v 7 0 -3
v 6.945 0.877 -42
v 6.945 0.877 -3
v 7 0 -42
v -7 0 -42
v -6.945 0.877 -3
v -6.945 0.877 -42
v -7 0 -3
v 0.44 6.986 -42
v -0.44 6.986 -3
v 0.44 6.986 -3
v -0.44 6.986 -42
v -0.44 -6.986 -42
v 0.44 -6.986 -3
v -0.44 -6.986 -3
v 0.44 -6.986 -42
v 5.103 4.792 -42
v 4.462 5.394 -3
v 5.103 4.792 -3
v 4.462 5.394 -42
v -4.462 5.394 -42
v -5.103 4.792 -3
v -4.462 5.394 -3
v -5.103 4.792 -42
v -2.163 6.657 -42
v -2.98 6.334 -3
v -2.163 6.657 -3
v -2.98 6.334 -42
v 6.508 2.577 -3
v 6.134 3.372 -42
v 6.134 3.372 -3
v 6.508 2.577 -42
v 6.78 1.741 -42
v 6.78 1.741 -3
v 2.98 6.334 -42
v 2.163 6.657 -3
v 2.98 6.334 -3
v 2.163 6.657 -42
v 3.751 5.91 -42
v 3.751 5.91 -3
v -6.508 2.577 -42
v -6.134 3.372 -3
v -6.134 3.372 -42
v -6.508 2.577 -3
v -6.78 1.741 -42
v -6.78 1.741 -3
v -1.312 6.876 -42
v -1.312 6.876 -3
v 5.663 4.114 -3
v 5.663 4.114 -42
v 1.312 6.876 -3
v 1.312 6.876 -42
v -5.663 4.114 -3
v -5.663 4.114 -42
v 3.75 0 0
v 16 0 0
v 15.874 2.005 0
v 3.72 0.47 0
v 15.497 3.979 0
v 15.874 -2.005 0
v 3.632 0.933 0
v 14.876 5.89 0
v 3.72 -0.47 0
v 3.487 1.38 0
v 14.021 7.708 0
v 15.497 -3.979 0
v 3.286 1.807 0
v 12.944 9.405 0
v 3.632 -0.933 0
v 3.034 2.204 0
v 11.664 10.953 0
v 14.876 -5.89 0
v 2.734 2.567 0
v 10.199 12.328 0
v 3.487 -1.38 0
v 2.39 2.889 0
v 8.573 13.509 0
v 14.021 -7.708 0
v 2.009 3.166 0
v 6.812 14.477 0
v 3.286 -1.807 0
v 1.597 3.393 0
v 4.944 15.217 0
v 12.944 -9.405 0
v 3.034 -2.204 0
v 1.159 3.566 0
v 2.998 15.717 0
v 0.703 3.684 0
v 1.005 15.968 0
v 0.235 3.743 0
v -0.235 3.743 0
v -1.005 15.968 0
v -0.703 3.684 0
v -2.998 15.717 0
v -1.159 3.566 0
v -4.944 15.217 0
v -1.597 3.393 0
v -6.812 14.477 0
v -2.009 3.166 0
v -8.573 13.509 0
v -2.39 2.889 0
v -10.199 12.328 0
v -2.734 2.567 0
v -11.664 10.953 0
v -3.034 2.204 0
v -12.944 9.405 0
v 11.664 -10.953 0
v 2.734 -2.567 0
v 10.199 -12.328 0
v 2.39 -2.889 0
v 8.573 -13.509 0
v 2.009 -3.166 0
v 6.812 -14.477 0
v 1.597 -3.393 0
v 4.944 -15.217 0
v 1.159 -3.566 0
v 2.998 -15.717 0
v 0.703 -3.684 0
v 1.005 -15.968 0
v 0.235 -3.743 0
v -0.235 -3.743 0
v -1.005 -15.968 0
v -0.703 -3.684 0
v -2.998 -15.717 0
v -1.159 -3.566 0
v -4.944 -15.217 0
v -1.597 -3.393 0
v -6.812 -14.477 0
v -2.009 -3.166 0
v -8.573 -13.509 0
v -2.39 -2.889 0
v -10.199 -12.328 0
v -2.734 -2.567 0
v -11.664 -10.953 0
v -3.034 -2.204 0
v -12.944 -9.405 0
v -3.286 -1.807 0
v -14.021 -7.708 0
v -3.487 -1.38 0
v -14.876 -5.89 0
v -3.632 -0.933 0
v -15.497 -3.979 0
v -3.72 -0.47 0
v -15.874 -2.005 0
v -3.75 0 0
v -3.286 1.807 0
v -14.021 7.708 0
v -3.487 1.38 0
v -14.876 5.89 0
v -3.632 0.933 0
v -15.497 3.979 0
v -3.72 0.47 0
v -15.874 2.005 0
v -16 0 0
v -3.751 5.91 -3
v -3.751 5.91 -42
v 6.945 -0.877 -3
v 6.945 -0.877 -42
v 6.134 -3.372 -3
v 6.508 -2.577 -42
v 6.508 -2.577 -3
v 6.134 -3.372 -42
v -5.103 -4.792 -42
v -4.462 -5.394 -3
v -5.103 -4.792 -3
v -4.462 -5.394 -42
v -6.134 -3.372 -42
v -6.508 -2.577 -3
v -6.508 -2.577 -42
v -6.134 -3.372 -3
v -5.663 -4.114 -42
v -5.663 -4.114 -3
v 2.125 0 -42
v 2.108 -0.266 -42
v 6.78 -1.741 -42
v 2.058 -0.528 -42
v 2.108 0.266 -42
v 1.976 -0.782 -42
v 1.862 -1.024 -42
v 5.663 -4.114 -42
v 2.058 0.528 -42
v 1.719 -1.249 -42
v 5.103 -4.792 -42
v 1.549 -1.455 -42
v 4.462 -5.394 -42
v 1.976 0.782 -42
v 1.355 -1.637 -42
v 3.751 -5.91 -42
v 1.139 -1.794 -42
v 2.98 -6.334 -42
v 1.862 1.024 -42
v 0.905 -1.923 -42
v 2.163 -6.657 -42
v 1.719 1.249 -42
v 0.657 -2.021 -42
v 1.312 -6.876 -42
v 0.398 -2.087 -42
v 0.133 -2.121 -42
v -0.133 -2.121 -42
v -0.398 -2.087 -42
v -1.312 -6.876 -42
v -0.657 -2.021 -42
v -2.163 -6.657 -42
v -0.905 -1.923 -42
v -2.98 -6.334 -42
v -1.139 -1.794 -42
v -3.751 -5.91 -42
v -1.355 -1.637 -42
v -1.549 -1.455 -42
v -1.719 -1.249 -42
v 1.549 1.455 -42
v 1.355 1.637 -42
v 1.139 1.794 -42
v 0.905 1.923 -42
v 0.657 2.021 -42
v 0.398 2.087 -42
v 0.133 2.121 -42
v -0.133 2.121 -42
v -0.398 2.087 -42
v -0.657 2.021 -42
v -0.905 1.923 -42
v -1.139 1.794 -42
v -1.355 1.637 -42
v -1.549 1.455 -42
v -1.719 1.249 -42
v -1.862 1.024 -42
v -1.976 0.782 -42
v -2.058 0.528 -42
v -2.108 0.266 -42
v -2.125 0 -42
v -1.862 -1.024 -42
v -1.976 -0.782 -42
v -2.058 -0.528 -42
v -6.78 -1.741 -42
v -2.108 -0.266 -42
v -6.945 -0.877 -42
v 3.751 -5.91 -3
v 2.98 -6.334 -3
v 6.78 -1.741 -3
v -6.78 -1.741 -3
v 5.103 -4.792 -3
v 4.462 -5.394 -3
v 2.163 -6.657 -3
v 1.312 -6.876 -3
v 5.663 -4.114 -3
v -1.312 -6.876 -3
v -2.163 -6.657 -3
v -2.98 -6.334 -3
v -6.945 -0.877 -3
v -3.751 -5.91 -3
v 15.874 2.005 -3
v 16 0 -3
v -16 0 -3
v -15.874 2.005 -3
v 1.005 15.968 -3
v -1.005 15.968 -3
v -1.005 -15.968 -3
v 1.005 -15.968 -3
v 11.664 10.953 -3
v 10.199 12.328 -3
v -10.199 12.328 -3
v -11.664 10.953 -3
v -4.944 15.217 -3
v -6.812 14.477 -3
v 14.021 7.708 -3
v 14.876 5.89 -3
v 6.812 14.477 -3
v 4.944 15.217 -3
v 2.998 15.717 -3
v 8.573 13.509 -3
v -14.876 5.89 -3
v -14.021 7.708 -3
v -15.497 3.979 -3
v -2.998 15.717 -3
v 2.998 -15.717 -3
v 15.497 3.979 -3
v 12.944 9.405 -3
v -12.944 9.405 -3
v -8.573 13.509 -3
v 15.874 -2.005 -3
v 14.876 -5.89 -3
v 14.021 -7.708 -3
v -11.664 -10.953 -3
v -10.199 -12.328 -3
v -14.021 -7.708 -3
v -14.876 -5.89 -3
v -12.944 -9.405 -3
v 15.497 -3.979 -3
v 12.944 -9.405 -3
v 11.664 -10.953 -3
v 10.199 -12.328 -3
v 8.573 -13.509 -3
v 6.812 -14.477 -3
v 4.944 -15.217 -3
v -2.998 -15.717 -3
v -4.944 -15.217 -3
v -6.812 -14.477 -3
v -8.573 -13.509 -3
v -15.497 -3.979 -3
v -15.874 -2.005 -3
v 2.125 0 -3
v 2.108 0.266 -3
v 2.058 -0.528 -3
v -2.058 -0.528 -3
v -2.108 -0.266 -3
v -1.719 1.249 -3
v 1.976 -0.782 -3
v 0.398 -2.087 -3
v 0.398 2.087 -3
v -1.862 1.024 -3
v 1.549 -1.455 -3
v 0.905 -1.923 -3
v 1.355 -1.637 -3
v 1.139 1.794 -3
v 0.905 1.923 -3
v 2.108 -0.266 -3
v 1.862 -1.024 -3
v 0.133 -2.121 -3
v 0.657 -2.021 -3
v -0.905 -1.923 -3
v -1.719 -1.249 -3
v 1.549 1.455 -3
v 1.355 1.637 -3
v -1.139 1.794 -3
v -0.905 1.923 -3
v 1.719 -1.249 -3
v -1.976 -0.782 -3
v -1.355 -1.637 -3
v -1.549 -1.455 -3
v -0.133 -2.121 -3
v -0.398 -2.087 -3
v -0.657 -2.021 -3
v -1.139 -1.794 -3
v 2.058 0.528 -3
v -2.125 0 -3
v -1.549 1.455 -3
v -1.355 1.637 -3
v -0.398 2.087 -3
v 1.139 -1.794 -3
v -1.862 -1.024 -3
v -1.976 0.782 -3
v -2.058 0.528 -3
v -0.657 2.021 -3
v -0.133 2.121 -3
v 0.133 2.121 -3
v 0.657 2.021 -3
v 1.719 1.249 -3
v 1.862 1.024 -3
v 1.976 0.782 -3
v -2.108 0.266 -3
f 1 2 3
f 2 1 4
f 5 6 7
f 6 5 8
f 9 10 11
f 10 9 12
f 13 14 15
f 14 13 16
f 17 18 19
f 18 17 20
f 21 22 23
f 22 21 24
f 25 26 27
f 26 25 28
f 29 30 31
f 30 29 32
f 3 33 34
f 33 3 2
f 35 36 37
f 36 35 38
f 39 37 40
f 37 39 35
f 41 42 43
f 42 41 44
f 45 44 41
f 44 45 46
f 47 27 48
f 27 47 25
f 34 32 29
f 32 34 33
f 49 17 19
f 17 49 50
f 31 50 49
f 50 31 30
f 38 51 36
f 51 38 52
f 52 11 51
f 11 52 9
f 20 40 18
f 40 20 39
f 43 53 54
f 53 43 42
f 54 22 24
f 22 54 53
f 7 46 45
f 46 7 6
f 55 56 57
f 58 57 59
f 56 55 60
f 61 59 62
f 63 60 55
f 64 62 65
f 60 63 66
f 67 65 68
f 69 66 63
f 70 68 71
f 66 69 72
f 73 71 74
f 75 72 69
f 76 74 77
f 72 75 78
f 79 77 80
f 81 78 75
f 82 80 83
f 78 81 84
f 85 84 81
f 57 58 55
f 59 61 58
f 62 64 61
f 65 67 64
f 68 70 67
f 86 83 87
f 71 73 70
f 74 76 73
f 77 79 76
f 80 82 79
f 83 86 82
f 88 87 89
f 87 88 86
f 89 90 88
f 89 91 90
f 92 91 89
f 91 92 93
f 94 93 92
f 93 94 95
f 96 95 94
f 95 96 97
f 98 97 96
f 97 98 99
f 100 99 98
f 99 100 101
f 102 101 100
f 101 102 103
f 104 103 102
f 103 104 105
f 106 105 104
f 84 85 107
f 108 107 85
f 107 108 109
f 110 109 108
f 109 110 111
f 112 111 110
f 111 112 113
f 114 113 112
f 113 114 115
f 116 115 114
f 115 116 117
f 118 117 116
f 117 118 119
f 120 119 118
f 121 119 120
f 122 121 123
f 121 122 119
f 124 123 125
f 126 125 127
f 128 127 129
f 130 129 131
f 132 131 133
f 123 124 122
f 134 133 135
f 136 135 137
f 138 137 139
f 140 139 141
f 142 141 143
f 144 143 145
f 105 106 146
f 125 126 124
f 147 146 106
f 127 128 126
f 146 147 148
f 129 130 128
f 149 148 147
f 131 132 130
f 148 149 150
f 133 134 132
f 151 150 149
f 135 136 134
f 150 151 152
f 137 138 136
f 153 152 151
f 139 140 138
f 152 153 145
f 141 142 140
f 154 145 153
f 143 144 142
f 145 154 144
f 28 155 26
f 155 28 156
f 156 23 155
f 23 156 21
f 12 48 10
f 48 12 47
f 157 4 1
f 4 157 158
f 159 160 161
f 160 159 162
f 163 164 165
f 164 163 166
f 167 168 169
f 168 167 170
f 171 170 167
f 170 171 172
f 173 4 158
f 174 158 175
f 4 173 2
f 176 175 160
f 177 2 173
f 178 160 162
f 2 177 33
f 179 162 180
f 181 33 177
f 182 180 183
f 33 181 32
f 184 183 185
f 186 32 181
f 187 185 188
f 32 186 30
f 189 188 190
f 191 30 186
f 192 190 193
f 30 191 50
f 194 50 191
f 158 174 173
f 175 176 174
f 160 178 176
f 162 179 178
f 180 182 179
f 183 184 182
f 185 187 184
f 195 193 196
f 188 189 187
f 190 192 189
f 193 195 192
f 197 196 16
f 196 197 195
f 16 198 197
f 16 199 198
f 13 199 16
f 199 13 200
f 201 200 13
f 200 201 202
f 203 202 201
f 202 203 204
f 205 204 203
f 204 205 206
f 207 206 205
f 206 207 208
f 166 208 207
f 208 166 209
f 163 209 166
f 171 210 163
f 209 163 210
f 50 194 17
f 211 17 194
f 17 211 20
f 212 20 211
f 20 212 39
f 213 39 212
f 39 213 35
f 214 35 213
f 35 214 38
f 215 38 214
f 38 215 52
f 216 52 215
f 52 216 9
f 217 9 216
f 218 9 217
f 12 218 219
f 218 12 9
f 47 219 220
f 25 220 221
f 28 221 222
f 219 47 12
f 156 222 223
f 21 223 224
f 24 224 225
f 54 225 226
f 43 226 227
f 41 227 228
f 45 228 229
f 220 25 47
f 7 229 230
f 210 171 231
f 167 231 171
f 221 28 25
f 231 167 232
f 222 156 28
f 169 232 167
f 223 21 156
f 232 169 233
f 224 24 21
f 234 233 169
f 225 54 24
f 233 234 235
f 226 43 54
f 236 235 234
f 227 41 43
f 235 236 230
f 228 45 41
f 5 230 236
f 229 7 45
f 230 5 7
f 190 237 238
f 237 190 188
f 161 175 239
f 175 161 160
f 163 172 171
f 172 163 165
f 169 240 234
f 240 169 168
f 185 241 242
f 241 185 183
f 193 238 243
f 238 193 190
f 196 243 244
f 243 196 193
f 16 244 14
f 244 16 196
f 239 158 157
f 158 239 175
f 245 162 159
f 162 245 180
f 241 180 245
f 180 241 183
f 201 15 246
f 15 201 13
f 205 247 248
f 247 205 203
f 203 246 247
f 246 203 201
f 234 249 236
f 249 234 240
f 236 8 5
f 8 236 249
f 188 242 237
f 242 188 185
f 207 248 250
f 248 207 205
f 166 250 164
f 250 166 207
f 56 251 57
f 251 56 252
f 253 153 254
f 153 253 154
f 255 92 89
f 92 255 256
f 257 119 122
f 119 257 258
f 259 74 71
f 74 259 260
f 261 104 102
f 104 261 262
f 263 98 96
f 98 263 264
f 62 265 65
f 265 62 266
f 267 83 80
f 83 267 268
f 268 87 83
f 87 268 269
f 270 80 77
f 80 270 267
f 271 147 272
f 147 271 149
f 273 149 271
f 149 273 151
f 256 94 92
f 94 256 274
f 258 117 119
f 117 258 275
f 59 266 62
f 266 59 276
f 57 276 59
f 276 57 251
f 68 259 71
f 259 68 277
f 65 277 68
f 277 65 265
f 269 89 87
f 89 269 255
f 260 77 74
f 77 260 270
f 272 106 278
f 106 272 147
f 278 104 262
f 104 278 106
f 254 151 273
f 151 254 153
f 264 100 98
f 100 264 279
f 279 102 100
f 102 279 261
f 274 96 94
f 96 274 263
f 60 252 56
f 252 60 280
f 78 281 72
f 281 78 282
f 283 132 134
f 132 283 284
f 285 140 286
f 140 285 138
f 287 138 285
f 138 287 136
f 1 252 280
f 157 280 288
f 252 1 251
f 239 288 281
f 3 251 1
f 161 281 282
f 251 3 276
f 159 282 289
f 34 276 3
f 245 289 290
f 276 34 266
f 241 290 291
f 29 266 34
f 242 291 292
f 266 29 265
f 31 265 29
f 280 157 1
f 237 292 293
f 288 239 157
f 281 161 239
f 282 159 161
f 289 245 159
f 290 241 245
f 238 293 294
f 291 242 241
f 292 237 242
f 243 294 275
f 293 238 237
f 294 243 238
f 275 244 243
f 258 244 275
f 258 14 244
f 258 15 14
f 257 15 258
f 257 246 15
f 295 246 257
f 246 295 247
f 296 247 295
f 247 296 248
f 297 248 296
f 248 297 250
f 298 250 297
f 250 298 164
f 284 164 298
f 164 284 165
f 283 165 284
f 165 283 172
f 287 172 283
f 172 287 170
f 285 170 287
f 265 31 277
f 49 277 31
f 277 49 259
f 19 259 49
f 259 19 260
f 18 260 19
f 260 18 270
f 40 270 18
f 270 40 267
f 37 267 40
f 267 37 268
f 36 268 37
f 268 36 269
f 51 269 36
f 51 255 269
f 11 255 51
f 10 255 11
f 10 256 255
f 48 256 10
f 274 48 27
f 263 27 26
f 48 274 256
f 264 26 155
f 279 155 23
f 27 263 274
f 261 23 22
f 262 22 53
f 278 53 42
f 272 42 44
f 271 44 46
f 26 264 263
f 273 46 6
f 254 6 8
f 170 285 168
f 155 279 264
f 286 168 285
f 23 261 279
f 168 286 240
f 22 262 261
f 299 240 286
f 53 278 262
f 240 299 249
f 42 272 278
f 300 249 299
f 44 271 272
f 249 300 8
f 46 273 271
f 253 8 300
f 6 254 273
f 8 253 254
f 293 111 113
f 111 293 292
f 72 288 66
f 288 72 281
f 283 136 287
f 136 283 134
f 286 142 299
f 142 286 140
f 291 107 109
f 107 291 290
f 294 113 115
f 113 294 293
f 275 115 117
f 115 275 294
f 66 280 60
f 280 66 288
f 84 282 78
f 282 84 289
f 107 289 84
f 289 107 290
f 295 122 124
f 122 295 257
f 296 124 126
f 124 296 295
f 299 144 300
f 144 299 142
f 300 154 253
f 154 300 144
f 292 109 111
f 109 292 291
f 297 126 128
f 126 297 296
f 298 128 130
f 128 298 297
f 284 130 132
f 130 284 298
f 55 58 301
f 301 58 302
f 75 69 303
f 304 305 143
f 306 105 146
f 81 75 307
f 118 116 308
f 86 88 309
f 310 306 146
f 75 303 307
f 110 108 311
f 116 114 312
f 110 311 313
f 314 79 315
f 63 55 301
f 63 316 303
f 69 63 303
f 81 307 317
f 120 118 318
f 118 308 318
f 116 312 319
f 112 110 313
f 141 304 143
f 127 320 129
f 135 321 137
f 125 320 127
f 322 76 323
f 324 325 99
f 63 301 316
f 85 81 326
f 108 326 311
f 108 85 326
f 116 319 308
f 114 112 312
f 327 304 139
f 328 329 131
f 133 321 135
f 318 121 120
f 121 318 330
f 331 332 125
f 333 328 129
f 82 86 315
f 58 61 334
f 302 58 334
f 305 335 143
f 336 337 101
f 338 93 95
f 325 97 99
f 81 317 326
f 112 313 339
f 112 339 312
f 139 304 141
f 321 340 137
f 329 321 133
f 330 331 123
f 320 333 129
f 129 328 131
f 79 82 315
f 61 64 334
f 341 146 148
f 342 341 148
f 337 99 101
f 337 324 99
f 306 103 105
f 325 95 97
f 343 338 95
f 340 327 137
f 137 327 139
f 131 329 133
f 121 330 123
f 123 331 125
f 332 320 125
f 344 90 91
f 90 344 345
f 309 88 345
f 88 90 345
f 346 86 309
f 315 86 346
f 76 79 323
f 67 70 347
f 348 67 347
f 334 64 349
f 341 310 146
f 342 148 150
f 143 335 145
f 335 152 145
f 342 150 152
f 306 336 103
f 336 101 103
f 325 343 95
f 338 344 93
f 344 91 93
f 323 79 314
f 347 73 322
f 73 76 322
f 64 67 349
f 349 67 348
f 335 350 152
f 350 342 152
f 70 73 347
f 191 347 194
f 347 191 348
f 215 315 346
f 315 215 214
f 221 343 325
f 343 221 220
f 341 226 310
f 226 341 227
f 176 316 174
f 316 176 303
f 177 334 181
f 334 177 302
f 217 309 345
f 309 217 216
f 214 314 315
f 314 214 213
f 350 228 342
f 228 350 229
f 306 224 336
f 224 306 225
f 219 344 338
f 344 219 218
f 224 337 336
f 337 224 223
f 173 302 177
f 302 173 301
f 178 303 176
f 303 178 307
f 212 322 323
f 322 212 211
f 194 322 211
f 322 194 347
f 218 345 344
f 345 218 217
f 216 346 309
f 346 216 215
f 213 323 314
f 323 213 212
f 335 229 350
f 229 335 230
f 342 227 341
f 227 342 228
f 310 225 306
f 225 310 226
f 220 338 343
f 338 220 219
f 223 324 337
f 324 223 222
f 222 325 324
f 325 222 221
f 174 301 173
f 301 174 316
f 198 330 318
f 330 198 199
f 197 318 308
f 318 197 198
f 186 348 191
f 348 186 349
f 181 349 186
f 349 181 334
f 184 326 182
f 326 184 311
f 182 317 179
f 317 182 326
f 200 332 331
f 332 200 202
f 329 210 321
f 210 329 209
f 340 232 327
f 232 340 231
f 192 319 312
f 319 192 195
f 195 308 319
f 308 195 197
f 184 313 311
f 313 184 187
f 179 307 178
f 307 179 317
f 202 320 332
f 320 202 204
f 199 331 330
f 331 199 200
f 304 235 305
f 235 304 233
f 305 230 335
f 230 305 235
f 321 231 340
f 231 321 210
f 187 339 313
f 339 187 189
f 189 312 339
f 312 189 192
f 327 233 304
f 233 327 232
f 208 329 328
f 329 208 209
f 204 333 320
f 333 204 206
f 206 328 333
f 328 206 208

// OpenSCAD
$fn = 50;


difference() {
	union() {
		translate(v = [0, 0, -42.0000000000]) {
			cylinder(h = 42, r = 7.0000000000);
		}
		translate(v = [0, 0, -3.0000000000]) {
			cylinder(h = 3, r = 16.0000000000);
		}
	}
	union() {
		translate(v = [0, 0, 0]) {
			rotate(a = [0, 0, 0]) {
				difference() {
					union() {
						#translate(v = [0, 0, -42.0000000000]) {
							cylinder(h = 42, r = 2.0000000000);
						}
						#translate(v = [0, 0, -3]) {
							cylinder(h = 3, r = 7.0000000000, r1 = 2.1250000000, r2 = 3.7500000000);
						}
						#translate(v = [0, 0, -42.0000000000]) {
							cylinder(h = 42, r = 2.1250000000);
						}
						#translate(v = [0, 0, -42.0000000000]) {
							cylinder(h = 42, r = 2.0000000000);
						}
					}
					union();
				}
			}
		}
	}
}
